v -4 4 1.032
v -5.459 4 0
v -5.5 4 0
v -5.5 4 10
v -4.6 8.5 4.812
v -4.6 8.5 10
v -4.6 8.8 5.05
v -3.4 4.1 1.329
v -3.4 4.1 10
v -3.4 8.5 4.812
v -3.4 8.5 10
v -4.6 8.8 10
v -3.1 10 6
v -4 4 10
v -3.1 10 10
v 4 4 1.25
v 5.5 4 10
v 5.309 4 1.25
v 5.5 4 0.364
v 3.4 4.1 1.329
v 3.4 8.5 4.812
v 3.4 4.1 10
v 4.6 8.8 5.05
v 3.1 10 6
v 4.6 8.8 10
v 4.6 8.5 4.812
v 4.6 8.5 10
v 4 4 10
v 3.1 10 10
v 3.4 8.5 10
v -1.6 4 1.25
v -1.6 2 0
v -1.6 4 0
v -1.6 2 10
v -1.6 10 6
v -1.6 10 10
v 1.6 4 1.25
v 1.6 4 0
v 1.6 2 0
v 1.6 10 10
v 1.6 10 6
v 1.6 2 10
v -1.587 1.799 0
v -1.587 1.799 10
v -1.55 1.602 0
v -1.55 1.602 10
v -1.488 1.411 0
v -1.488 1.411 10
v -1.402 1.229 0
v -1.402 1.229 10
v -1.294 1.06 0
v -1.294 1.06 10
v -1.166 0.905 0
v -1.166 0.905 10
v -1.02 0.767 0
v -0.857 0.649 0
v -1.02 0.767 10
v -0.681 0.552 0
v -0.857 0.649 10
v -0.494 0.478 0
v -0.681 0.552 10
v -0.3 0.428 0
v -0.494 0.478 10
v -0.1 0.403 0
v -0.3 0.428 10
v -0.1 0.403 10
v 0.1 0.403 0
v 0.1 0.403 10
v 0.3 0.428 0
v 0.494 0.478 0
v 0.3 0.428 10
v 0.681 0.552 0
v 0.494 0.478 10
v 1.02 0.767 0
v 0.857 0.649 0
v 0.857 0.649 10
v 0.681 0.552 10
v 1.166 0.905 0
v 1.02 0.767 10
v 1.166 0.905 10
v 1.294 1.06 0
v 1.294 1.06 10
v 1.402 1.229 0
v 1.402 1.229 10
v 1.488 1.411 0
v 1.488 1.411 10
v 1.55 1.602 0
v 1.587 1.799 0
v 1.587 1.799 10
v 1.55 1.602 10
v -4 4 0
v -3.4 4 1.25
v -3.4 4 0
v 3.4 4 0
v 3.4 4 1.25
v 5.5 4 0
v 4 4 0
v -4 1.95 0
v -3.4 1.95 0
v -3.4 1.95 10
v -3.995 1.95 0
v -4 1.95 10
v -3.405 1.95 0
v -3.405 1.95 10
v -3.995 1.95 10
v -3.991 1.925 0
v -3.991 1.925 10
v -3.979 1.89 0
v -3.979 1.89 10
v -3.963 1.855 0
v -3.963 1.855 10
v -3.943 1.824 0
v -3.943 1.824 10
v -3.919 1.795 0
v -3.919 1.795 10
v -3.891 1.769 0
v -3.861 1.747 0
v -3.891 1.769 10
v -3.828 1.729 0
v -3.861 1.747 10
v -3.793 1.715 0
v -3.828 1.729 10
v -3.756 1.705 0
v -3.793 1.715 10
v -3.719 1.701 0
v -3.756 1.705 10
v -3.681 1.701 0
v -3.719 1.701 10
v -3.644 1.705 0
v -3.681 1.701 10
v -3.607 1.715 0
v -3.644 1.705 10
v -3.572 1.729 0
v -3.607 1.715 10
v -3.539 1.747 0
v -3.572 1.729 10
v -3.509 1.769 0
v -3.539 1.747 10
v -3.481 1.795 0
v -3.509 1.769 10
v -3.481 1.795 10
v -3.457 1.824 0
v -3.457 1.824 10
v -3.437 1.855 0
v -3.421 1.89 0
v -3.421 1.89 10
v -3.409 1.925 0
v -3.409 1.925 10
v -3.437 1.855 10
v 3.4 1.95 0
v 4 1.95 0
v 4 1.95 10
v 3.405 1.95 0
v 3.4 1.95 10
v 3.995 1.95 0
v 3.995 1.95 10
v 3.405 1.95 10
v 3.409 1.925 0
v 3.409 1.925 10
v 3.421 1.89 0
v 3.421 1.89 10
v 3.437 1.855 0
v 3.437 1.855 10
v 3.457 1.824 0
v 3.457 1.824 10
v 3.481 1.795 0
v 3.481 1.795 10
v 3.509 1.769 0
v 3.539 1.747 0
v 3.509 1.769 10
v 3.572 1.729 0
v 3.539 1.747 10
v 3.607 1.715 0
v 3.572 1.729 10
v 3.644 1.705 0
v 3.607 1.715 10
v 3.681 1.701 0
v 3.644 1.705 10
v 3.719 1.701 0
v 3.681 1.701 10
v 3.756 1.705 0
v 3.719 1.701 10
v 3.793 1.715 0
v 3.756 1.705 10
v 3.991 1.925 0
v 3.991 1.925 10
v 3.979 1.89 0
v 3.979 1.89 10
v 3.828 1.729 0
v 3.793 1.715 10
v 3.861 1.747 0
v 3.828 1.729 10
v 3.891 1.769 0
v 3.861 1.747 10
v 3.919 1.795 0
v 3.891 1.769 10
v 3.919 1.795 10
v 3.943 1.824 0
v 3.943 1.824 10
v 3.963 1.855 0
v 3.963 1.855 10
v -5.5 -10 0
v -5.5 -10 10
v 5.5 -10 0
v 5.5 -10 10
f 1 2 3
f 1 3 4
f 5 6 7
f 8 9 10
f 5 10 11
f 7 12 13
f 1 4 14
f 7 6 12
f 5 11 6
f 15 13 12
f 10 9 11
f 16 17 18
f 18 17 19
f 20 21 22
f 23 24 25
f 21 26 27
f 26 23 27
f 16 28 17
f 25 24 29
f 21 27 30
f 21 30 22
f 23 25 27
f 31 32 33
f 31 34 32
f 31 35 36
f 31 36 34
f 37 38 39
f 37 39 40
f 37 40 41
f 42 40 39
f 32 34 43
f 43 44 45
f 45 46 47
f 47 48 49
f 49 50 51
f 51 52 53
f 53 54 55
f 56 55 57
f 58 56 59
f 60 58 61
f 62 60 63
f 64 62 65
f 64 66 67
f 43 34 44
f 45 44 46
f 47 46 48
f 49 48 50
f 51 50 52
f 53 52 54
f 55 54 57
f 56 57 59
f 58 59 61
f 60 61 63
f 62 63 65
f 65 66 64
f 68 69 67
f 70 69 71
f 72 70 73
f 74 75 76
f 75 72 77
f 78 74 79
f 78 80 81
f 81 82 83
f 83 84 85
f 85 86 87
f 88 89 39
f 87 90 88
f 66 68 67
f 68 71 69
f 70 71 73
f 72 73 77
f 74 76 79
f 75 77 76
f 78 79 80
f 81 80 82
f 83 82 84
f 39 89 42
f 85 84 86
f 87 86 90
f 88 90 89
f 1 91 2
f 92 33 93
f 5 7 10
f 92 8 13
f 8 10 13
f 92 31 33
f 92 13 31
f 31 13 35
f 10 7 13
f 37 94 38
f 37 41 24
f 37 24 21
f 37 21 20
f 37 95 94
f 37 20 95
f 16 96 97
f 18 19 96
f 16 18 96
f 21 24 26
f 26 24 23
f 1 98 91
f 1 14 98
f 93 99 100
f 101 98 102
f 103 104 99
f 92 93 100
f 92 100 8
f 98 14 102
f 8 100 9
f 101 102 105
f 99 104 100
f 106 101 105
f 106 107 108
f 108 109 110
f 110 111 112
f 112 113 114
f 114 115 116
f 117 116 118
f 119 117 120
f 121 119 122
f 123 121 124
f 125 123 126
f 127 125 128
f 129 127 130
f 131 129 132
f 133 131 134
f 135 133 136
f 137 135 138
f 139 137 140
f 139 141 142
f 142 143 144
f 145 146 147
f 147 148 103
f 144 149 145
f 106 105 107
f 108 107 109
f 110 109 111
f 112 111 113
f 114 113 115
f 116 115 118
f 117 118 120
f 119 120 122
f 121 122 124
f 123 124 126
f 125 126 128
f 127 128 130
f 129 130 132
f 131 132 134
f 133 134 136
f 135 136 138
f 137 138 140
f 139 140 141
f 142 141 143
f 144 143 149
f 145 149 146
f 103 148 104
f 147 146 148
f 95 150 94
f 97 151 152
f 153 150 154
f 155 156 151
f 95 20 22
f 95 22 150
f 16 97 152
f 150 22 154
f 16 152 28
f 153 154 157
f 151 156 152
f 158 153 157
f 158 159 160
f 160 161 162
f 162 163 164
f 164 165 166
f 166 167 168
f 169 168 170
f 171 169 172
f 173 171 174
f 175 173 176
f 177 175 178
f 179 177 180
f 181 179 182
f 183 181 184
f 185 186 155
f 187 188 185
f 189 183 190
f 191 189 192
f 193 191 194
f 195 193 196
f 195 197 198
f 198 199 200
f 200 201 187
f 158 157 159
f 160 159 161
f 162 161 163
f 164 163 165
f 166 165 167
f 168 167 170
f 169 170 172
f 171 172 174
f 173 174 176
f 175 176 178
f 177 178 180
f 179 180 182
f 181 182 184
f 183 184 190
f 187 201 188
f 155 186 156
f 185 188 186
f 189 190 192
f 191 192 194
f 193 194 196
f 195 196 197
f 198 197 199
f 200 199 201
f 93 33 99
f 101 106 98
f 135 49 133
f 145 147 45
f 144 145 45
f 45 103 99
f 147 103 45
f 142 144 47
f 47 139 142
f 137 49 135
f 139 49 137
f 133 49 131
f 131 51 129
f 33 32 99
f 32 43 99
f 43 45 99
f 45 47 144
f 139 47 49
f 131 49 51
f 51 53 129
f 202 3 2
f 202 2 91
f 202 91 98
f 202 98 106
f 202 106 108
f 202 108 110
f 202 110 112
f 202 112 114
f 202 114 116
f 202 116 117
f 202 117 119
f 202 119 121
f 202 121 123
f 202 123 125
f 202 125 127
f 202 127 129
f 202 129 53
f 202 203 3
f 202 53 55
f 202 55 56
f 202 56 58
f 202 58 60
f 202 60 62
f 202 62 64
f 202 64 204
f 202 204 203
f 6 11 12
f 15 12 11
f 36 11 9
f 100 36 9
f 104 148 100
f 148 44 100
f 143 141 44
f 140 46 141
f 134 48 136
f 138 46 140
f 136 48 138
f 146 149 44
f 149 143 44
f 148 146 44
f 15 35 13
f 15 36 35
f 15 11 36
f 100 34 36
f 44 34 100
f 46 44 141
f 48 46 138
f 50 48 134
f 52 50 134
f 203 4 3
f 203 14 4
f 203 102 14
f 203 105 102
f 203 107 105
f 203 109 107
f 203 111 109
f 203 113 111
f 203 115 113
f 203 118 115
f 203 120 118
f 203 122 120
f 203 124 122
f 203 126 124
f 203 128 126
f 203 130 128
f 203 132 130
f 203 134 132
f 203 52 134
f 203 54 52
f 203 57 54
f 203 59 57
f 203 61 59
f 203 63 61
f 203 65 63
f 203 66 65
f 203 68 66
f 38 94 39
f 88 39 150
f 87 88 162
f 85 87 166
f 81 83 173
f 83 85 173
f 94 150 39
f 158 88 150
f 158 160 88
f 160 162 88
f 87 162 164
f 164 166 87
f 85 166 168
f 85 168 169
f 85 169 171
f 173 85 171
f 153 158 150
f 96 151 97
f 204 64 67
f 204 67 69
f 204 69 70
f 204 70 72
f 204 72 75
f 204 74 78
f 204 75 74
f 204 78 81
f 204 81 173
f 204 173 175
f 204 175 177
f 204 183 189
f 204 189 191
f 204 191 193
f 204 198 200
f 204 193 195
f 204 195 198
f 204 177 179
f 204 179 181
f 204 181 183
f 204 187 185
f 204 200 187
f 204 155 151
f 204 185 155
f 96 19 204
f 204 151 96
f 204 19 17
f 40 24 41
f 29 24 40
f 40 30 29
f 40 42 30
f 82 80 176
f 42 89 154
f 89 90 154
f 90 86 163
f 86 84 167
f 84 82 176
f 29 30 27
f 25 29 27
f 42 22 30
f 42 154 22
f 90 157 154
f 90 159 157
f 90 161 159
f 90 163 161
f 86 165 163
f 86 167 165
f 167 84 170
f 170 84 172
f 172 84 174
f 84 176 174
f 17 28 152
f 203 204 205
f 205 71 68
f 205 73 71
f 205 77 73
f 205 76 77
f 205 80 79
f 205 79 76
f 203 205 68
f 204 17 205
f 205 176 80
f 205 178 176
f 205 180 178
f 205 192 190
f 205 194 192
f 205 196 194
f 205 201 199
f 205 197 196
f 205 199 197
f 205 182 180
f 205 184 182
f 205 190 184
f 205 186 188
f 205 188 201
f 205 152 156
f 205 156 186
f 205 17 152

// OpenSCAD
$fn = 50;

difference() {
	union() {
		translate(v = [0, 4.0, 0]) {
			rotate(a = [90, 0, 0]) {
				difference() {
					union() {
						translate(v = [-5.5, 0, -6.0]) {
							cube(size = [11.0, 10.0, 20.0]);
						}
					}
					union() {
						translate(v = [0, 0, 0]) {
							rotate(a = [0, 0, 0]) {
								difference() {
									union() {
										translate(v = [0, 10.1, 0]) {
											rotate(a = [90, 0, 0]) {
												linear_extrude(height = 10.2) {
													polygon(points = [[-3.1, -6.1], [-3.1, -6.0], [-4.6, -4.8], [-4.6, -4.5], [-3.4, -4.5], [-3.4, 0], [-5.6, 0], [-5.6, -6.1]]);
												}
											}
										}
										translate(v = [0, 10.1, 0]) {
											rotate(a = [90, 0, 0]) {
												linear_extrude(height = 10.2) {
													polygon(points = [[3.1, -6.1], [3.1, -6.0], [4.6, -4.8], [4.6, -4.5], [3.4, -4.5], [3.4, 0], [5.6, 0], [5.6, -6.1]]);
												}
											}
										}
										translate(v = [-1.5999999999999999, -0.1, -6.1]) {
											cube(size = [3.1999999999999997, 10.2, 8.1]);
										}
										translate(v = [0, 10.1, 2.0]) {
											rotate(a = [90, 0, 0]) {
												cylinder(h = 10.2, r = 1.5999999999999999);
											}
										}
									}
									union();
								}
							}
						}
						translate(v = [0, 0, 212.0]) {
							rotate(a = [0, 180, 0]) {
								difference() {
									union() {
										translate(v = [0, 10.1, 0]) {
											rotate(a = [90, 0, 0]) {
												linear_extrude(height = 10.2) {
													polygon(points = [[-3.1, -6.1], [-3.1, -6.0], [-4.6, -4.8], [-4.6, -4.5], [-3.4, -4.5], [-3.4, 0], [-5.6, 0], [-5.6, -6.1]]);
												}
											}
										}
										translate(v = [0, 10.1, 0]) {
											rotate(a = [90, 0, 0]) {
												linear_extrude(height = 10.2) {
													polygon(points = [[3.1, -6.1], [3.1, -6.0], [4.6, -4.8], [4.6, -4.5], [3.4, -4.5], [3.4, 0], [5.6, 0], [5.6, -6.1]]);
												}
											}
										}
										translate(v = [-1.5999999999999999, -0.1, -6.1]) {
											cube(size = [3.1999999999999997, 10.2, 8.1]);
										}
										translate(v = [0, 10.1, 2.0]) {
											rotate(a = [90, 0, 0]) {
												cylinder(h = 10.2, r = 1.5999999999999999);
											}
										}
									}
									union();
								}
							}
						}
						translate(v = [-5.6, 0, 0]) {
							rotate(a = [90, 0, 90]) {
								linear_extrude(height = 11.2) {
									polygon(points = [[-0.1, -6.1], [6.079166666666667, -6.1], [1.25, 0], [-0.1, 0]]);
								}
							}
						}
						translate(v = [0, 10.1, 0]) {
							rotate(a = [90, 0, 0]) {
								linear_extrude(height = 10.2) {
									polygon(points = [[-3.4, -0.1], [-4.0, -0.1], [-4.0, 2.05], [-3.4, 2.05]]);
								}
							}
						}
						translate(v = [-3.6999999999999997, 10.1, 2.0]) {
							rotate(a = [90, 0, 0]) {
								cylinder(h = 10.2, r = 0.3);
							}
						}
						translate(v = [0, 10.1, 0]) {
							rotate(a = [90, 0, 0]) {
								linear_extrude(height = 10.2) {
									polygon(points = [[3.4, -0.1], [4.0, -0.1], [4.0, 2.05], [3.4, 2.05]]);
								}
							}
						}
						translate(v = [3.6999999999999997, 10.1, 2.0]) {
							rotate(a = [90, 0, 0]) {
								cylinder(h = 10.2, r = 0.3);
							}
						}
						translate(v = [-5.6, 0, 0]) {
							rotate(a = [90, 0, 90]) {
								linear_extrude(height = 11.2) {
									polygon(points = [[-0.1, 218.1], [6.079166666666667, 218.1], [1.25, 212.0], [-0.1, 212.0]]);
								}
							}
						}
						translate(v = [0, 10.1, 0]) {
							rotate(a = [90, 0, 0]) {
								linear_extrude(height = 10.2) {
									polygon(points = [[-3.4, 212.1], [-4.0, 212.1], [-4.0, 209.95], [-3.4, 209.95]]);
								}
							}
						}
						translate(v = [-3.6999999999999997, 10.1, 210.0]) {
							rotate(a = [90, 0, 0]) {
								cylinder(h = 10.2, r = 0.3);
							}
						}
						translate(v = [0, 10.1, 0]) {
							rotate(a = [90, 0, 0]) {
								linear_extrude(height = 10.2) {
									polygon(points = [[3.4, 212.1], [4.0, 212.1], [4.0, 209.95], [3.4, 209.95]]);
								}
							}
						}
						translate(v = [3.6999999999999997, 10.1, 210.0]) {
							rotate(a = [90, 0, 0]) {
								cylinder(h = 10.2, r = 0.3);
							}
						}
						translate(v = [-5.6, 0, 0]) {
							rotate(a = [90, 0, 90]) {
								linear_extrude(height = 11.2) {
									polygon(points = [[10.1, 14.5], [10.1, 197.5], [4.0, 190.3], [4.0, 21.7]]);
								}
							}
						}
					}
				}
			}
		}
	}
	union();
}
